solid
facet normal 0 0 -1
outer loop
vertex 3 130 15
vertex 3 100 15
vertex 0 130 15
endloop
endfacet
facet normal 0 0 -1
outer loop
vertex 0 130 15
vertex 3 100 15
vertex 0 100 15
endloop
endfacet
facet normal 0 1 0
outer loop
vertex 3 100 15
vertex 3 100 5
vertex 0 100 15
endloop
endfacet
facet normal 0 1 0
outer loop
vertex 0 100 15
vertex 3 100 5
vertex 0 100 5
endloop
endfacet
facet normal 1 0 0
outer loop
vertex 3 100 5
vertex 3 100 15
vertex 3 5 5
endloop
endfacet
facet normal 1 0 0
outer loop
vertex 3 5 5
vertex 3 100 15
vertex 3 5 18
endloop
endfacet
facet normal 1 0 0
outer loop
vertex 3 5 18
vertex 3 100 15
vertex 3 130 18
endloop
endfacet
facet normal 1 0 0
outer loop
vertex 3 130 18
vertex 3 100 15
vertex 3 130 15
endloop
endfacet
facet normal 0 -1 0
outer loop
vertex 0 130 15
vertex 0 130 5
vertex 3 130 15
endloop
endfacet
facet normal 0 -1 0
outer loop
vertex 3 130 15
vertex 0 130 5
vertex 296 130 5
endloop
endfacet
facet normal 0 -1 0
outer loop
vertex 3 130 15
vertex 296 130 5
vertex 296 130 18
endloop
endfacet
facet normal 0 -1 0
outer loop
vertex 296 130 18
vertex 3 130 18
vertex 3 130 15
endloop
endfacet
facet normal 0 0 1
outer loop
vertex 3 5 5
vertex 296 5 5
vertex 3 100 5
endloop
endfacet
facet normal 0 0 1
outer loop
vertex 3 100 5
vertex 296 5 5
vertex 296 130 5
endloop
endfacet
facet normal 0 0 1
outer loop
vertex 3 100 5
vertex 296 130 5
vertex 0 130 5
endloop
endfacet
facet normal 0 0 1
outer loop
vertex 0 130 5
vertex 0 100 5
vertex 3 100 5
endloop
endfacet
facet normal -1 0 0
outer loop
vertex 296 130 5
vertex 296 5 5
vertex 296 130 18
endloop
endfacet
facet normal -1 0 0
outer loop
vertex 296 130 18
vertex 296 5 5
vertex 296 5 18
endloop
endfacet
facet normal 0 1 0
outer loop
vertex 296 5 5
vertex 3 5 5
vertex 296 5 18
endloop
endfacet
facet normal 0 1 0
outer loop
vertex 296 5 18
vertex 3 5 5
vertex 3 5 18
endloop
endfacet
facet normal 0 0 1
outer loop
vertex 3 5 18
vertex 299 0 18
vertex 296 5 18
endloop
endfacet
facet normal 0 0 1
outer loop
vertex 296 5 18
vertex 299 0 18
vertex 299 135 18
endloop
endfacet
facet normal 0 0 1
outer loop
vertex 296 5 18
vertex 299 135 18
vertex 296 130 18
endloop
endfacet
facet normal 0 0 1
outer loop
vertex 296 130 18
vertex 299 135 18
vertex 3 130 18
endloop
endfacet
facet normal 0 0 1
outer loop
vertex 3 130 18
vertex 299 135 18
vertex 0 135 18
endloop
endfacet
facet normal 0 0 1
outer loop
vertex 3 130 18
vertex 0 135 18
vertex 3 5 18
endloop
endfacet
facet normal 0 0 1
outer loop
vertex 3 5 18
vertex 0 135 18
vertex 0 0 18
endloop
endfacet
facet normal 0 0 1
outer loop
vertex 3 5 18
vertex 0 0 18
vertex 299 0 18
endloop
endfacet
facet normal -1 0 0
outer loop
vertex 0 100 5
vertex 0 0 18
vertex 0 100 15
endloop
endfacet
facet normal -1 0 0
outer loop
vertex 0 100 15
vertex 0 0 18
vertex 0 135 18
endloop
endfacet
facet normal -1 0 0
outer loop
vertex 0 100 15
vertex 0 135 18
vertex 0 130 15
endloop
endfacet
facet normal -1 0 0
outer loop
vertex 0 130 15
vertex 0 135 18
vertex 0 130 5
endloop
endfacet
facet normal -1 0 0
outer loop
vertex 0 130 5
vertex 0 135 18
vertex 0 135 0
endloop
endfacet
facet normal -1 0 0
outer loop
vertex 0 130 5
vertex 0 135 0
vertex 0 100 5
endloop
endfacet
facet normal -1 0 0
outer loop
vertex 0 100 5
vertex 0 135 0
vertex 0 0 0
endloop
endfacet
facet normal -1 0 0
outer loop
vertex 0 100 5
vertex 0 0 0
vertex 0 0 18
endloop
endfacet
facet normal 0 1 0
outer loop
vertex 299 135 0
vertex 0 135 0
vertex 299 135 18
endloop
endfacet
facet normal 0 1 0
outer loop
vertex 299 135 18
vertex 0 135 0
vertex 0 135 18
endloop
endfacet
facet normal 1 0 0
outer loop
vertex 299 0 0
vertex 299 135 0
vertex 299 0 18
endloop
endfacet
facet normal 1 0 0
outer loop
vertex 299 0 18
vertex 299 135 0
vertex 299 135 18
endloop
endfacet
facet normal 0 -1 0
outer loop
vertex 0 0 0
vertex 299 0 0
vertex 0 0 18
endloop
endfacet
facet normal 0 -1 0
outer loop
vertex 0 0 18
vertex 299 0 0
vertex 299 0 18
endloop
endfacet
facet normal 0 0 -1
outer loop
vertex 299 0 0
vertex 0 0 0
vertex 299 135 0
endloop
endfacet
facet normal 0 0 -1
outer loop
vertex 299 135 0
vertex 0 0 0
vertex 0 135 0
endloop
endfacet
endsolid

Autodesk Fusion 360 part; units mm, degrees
sketch "Sketch1" plane through (0, 0, 0) normal (0, 0, 1) x (1, 0, 0)
  line L0 (0, 0) -> (299, 0)
  line L1 (299, 0) -> (299, 135)
  line L2 (299, 135) -> (0, 135)
  line L3 (0, 135) -> (0, 0)
  line L4 (0, 135) -> (3, 135)
  line L5 (3, 130) -> (296, 130)
  line L6 (296, 130) -> (296, 5)
  line L7 (296, 5) -> (3, 5)
  line L8 (3, 5) -> (3, 130)
  dimension "d1" = 299
  dimension "d2" = 135
  dimension "d3" = 3
extrude "Extrude1" add sketch "Sketch1" along normal blind 13
sketch "Sketch2" plane through (0, 0, 0) normal (0, 0, 1) x (1, 0, 0)
  line L0 (3, 130) -> (296, 130)
  line L1 (296, 130) -> (296, 5)
  line L2 (296, 5) -> (3, 5)
  line L3 (3, 5) -> (3, 130)
extrude "Extrude2" add sketch "Sketch2" along normal blind 3
extrude "Extrude3" add 1 faces at (100.6667, 1.6667, 13) along direction (0, 0, 1) blind 5
extrude "Extrude4" add 1 faces at (100.6667, 88.3333, 3) along direction (0, 0, 1) blind 2
sketch "Sketch3" plane through (0, 0, 0) normal (-1, 0, 0) x (0, -1, 0)
  line L0 (-135, 0) -> (0, 0)
  line L1 (0, 0) -> (0, 18)
  line L2 (0, 18) -> (-135, 18)
  line L3 (-135, 18) -> (-135, 0)
  line L4 (-130, 15) -> (-100, 15)
  line L5 (-100, 15) -> (-100, 5)
  line L6 (-100, 5) -> (-130, 5)
  line L7 (-130, 5) -> (-130, 15)
  dimension "d12" = 10
extrude "Extrude5" cut sketch "Sketch3" against normal blind 10 contours L4 L5 L6 L7
